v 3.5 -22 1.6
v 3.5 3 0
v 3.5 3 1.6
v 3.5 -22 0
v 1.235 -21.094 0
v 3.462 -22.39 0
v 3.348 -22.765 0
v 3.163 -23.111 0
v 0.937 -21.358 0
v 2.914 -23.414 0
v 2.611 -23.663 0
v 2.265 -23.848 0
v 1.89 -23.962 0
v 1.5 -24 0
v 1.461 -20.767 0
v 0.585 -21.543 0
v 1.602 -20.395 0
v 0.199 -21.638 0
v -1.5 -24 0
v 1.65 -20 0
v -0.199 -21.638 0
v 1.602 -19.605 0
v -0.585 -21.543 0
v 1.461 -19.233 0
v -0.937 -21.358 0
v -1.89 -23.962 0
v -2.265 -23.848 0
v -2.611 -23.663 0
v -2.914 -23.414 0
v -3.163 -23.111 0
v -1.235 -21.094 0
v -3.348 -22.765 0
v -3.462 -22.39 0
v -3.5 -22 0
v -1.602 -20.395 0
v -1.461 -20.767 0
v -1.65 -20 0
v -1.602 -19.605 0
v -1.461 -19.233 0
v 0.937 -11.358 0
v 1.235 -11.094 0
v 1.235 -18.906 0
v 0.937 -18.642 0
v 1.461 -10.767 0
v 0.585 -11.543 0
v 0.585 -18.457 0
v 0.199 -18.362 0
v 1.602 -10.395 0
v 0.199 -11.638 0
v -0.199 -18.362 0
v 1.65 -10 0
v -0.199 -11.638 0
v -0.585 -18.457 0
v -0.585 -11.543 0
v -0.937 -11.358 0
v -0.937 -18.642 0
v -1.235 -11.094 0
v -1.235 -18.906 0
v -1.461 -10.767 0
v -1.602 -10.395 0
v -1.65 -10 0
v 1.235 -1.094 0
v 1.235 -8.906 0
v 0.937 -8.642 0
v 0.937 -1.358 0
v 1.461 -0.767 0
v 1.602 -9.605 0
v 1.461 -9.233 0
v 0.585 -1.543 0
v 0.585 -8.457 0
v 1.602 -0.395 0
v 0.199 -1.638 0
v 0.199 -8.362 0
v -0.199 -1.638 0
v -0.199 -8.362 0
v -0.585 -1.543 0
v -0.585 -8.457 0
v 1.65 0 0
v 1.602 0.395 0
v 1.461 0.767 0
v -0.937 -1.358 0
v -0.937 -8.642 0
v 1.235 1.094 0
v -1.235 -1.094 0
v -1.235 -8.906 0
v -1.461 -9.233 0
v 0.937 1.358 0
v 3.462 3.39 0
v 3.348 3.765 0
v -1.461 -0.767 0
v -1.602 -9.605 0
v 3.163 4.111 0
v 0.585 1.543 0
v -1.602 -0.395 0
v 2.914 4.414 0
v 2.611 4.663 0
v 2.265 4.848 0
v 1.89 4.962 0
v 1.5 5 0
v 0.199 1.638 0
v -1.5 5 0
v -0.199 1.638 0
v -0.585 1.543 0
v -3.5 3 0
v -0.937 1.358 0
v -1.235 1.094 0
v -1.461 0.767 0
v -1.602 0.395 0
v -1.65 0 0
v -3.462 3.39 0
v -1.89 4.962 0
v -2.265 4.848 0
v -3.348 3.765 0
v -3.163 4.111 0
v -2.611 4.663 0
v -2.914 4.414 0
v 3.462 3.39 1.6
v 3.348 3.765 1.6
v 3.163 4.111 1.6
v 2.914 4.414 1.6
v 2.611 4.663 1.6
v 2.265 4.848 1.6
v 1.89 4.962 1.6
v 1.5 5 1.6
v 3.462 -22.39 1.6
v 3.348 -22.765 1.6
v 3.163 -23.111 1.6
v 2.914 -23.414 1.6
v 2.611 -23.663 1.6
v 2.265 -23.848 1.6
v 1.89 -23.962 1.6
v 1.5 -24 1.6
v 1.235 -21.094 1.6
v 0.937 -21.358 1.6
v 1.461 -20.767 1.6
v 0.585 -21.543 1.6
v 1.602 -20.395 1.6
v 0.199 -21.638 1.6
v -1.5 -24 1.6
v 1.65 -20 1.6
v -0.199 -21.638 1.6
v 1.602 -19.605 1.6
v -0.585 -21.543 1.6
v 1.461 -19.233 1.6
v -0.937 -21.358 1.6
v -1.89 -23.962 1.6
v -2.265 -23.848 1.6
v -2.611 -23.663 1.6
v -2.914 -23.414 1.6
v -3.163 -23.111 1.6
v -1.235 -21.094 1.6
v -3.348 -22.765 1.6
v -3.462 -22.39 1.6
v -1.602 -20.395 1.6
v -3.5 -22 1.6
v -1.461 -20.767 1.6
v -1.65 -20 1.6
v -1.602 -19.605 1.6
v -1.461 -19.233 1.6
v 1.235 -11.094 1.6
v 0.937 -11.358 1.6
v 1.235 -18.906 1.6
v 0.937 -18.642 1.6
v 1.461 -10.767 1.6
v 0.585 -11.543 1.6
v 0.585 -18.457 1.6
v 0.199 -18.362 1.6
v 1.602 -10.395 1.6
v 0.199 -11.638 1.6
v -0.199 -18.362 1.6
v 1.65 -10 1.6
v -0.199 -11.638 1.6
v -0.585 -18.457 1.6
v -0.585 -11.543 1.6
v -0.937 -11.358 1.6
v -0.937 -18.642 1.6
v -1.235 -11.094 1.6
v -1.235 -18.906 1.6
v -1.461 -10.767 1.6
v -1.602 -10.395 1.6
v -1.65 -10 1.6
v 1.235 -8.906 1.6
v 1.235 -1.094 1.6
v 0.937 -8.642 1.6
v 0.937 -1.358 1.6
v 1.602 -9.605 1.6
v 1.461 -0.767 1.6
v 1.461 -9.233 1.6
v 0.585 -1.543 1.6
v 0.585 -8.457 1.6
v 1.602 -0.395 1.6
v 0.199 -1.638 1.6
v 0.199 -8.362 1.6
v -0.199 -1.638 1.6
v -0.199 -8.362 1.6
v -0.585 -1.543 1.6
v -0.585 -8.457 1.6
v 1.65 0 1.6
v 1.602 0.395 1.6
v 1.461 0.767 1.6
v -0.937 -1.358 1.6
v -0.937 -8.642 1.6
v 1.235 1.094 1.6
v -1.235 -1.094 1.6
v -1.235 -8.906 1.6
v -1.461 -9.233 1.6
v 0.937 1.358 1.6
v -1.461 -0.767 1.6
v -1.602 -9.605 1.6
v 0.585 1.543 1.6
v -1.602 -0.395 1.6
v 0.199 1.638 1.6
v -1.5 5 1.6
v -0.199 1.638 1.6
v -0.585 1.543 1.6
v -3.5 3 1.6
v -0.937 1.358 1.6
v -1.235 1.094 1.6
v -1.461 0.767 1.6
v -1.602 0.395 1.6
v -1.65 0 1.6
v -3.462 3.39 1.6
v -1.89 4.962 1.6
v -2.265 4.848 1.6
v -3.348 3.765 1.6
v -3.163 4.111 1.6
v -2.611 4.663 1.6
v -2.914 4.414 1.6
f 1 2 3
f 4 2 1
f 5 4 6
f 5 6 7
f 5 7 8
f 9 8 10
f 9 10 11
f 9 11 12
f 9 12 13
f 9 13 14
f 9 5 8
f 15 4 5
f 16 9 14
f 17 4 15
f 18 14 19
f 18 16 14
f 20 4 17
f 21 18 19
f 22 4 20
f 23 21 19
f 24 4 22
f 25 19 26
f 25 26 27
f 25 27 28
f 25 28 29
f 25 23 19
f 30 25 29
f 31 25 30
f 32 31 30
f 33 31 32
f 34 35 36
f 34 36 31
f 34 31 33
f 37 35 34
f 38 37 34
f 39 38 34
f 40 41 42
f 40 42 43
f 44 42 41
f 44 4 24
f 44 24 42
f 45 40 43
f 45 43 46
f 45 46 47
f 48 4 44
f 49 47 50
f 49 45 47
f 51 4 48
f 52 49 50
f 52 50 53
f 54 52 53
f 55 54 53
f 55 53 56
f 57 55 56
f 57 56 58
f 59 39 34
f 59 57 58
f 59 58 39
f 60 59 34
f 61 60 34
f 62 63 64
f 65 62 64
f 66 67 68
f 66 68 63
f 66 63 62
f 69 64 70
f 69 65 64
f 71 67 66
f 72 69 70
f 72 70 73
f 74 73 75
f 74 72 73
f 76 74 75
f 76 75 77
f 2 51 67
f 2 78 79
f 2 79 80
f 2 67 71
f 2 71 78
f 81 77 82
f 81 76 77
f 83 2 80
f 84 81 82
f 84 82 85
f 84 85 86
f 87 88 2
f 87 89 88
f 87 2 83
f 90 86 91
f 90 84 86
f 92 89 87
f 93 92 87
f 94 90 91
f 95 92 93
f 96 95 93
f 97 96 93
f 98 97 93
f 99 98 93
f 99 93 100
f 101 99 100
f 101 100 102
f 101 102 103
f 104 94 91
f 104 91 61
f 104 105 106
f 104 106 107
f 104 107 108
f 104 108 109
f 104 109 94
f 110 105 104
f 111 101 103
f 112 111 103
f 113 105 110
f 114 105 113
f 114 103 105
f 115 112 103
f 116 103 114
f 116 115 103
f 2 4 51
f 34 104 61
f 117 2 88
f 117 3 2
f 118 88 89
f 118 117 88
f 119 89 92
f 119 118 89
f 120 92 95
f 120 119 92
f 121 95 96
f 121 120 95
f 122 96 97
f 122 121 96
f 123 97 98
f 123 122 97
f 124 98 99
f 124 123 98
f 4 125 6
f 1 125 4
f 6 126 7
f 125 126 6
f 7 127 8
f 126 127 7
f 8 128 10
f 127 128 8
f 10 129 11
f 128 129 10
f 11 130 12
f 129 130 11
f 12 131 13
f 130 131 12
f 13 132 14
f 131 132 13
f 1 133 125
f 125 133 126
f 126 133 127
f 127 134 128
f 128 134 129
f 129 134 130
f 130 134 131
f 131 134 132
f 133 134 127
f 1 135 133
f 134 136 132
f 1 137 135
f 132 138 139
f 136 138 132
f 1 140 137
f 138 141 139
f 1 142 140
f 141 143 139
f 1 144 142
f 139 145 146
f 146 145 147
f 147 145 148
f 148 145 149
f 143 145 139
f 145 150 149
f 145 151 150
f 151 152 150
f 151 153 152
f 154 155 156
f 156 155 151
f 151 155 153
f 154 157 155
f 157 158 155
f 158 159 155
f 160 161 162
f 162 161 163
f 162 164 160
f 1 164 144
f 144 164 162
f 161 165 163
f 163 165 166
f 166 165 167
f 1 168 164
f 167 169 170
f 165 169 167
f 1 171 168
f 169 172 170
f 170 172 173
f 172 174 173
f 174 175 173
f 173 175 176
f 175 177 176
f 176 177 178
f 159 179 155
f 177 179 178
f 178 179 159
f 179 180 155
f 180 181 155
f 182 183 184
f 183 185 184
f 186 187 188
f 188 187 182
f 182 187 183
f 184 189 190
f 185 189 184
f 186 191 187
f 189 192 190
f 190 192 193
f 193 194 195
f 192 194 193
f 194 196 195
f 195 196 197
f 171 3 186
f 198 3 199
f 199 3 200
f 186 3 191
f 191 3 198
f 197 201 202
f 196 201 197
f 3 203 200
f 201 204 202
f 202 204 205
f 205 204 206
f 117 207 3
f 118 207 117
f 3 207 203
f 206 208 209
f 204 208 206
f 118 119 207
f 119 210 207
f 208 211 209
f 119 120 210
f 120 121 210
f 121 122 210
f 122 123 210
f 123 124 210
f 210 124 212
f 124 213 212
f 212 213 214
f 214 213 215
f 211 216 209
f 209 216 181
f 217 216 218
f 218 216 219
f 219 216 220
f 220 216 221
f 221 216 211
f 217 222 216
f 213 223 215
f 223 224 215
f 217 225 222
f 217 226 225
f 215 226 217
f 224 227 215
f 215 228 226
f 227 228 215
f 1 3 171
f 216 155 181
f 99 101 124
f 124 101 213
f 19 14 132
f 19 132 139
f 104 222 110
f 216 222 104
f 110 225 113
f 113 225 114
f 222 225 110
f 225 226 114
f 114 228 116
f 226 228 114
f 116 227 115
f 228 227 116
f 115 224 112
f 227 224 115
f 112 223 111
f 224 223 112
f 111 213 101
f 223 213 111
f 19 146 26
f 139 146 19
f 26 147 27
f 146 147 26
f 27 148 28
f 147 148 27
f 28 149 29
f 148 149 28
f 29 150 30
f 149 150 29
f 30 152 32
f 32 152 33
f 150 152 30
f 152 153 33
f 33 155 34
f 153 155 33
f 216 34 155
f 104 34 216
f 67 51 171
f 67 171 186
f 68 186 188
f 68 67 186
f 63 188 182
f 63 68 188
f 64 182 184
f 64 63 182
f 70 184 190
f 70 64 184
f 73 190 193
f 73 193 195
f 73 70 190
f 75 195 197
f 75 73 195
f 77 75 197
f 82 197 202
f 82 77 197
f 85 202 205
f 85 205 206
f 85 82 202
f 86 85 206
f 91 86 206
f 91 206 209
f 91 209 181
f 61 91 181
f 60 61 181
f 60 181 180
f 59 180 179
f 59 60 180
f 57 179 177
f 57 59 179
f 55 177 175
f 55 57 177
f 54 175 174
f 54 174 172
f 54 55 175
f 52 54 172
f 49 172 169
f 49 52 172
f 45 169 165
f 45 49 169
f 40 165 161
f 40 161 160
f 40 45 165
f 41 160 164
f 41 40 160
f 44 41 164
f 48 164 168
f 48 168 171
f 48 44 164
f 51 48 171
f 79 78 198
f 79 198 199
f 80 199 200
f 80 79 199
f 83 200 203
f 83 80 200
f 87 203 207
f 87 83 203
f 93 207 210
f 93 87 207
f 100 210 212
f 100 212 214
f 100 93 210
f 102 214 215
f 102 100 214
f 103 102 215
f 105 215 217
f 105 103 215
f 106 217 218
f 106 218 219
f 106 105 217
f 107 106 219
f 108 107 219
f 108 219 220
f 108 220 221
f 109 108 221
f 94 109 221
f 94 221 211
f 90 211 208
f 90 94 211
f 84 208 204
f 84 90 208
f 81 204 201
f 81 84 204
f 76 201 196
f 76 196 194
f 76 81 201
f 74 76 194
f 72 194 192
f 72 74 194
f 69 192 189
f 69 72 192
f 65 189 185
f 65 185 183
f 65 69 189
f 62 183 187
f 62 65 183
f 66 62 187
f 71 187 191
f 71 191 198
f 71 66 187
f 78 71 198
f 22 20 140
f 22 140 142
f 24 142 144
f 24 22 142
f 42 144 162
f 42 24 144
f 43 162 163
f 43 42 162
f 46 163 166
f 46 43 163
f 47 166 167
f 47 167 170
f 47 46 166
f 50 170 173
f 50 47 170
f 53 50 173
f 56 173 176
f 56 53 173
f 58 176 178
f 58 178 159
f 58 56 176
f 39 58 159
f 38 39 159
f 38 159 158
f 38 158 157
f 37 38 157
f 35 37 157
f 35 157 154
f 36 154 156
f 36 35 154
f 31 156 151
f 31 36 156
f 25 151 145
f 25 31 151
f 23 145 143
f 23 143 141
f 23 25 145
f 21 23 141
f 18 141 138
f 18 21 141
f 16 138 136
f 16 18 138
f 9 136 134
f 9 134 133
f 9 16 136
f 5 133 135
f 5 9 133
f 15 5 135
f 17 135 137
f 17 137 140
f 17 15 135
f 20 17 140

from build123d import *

# Parameters (mm, degrees)
SKETCH_W  = 7
SKETCH_H  = 29
SKETCH_R  = 1.65
PAD_DEPTH = 1.6
FILLET_R  = 2


with BuildPart() as part:
    # Sketch → Pad (new body)
    with BuildSketch(Plane.XY):
        with Locations((0, -9.5)):
            Rectangle(SKETCH_W, SKETCH_H)
        Circle(SKETCH_R, mode=Mode.SUBTRACT)
        with Locations((0, -10)):
            Circle(SKETCH_R, mode=Mode.SUBTRACT)
        with Locations((0, -20)):
            Circle(SKETCH_R, mode=Mode.SUBTRACT)
    extrude(amount=PAD_DEPTH)

    # Fillet
    fillet_edges = [part.edges().sort_by_distance(p)[0] for p in [
        (3.5, 5, 0.8),
        (3.5, -24, 0.8),
        (-3.5, -24, 0.8),
        (-3.5, 5, 0.8),
    ]]
    fillet(fillet_edges, radius=FILLET_R)


solid = part.part
